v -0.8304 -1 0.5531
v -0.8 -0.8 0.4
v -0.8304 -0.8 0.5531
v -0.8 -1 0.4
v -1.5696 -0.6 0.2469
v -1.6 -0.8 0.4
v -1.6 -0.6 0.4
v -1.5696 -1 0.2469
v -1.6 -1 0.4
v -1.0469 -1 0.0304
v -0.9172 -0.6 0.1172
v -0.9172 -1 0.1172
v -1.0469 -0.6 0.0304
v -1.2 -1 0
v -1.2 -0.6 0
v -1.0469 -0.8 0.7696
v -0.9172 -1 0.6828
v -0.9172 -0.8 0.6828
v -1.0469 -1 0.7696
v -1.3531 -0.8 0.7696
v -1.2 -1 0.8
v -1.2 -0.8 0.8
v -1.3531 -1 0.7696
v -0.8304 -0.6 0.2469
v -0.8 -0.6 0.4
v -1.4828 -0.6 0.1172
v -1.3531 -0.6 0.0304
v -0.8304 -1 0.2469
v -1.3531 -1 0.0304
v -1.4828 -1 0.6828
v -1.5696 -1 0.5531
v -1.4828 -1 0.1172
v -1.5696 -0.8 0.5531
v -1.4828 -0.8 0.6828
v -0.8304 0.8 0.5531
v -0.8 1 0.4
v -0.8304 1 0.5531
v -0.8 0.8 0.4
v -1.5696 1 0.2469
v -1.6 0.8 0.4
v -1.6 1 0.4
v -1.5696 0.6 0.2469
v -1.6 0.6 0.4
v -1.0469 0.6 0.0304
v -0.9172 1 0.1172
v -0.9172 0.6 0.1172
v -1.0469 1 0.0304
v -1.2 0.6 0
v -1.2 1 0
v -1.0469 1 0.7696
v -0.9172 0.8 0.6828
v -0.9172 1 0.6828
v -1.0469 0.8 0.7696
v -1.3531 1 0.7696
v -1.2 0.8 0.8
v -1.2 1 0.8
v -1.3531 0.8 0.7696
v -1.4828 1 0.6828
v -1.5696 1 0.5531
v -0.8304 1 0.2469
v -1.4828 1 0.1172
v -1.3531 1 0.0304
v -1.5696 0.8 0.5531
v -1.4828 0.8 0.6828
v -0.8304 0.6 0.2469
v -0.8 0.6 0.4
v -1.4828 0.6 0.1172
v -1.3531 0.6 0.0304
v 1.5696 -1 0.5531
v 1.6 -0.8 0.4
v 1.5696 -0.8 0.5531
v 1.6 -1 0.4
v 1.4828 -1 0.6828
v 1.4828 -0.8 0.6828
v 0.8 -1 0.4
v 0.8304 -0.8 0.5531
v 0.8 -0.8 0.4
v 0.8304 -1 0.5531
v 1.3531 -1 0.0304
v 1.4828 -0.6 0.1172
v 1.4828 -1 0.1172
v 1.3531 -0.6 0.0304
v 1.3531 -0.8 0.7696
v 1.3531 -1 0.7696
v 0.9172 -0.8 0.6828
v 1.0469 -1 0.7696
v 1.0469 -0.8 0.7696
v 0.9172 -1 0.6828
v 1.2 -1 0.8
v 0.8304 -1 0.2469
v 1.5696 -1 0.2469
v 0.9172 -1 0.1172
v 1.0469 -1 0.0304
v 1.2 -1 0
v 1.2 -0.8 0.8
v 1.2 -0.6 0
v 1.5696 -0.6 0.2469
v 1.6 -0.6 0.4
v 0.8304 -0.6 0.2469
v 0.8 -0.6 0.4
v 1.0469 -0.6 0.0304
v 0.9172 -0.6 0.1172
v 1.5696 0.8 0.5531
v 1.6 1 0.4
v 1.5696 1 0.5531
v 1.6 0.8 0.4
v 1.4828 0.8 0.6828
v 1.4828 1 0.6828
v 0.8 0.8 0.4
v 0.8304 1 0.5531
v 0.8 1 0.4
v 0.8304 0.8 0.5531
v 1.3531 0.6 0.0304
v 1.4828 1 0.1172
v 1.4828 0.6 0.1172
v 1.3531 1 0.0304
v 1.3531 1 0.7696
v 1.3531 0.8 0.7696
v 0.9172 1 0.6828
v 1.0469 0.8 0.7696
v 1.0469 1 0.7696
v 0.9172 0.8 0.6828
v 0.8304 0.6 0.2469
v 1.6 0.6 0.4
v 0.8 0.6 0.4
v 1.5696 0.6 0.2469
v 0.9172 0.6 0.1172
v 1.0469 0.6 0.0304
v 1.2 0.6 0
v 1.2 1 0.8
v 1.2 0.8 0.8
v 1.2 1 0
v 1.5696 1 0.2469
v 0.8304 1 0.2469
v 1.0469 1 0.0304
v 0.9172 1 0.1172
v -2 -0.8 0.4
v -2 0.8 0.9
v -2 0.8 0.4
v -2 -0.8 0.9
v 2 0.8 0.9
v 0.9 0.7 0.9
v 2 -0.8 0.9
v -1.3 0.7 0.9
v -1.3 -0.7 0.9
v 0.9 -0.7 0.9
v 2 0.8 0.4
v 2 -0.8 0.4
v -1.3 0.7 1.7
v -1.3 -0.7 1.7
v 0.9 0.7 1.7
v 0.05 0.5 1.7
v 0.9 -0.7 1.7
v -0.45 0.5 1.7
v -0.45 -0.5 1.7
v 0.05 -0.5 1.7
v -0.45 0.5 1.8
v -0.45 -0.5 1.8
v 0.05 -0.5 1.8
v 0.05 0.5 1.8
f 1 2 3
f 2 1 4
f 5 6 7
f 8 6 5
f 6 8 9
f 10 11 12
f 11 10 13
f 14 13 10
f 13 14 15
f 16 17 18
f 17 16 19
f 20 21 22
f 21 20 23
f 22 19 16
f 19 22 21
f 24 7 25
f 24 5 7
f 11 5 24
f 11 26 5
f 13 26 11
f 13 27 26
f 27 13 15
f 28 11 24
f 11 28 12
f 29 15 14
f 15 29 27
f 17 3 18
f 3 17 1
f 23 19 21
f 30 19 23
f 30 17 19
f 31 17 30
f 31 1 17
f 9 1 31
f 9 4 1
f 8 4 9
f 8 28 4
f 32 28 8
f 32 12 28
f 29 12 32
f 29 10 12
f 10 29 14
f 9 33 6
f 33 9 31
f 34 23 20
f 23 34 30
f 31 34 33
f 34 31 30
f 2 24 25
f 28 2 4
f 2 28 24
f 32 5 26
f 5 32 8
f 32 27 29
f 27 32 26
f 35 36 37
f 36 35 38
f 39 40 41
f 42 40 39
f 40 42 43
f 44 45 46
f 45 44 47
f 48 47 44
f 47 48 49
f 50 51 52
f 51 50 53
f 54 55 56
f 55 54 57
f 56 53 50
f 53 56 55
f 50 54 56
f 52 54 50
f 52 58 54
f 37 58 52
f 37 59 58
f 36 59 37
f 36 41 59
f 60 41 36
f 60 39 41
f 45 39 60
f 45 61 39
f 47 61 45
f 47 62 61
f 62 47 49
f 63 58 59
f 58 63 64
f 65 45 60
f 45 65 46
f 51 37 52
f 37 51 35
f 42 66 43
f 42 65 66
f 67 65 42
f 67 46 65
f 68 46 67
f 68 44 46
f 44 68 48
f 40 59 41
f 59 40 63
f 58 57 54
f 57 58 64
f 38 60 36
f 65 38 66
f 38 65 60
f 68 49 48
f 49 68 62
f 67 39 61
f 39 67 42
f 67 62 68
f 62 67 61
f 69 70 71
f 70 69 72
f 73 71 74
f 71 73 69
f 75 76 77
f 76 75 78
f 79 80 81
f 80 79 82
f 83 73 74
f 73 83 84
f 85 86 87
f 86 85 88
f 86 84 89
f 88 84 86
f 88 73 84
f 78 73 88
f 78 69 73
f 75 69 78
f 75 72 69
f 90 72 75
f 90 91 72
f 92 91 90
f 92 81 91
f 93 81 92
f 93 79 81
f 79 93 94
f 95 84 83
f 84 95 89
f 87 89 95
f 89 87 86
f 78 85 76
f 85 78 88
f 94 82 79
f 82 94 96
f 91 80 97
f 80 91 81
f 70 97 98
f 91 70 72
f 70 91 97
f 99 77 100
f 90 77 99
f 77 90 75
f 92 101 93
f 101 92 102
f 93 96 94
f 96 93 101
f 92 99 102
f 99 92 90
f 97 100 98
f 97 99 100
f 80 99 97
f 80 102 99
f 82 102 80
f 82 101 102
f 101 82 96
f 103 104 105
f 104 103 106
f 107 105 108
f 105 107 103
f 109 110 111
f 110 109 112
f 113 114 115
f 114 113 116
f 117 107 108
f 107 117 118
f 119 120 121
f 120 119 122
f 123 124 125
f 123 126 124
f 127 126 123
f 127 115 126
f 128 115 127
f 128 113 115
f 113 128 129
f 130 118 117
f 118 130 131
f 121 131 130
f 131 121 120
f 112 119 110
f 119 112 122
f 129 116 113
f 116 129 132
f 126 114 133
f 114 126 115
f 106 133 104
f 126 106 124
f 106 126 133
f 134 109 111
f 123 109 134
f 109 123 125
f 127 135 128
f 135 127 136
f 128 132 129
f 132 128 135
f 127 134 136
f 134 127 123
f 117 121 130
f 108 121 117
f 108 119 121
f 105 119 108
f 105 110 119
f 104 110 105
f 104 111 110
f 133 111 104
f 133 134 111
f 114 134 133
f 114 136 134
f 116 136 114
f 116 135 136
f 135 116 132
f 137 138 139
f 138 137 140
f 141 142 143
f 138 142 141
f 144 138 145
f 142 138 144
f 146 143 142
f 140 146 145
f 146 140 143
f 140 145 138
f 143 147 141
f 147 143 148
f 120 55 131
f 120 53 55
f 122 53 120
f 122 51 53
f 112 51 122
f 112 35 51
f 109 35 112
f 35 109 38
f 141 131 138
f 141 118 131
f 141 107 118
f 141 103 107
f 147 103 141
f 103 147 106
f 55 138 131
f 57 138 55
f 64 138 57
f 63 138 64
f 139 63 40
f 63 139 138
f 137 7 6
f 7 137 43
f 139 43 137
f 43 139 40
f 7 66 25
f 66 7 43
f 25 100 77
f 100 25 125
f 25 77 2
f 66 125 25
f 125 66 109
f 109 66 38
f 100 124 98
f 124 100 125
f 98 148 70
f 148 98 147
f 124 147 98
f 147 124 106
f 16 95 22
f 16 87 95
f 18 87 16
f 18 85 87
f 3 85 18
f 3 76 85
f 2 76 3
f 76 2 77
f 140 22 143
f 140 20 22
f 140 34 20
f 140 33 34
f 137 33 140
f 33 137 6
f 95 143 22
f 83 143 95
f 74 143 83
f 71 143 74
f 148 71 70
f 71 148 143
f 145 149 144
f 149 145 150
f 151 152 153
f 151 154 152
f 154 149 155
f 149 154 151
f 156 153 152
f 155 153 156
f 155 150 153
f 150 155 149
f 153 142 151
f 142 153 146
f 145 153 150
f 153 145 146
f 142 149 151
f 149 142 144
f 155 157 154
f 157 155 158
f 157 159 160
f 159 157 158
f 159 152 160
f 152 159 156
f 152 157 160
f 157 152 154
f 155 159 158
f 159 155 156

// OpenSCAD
$fn = 16;

module follow_me_car() {
    color("darkgray") {
        for (x = [-1.2, 1.2]) {
            for (y = [-0.8, 0.8]) {
                translate([x, y, 0.4]) 
                    rotate([90, 0, 0]) 
                    cylinder(h=0.4, r=0.4, center=true);
            }
        }
    }

    // body
    color("yellow") {
        translate([0, 0, 0.65]) 
            cube([4, 1.6, 0.5], center=true);
            
        // upper cabin
        translate([-0.2, 0, 1.3]) 
            cube([2.2, 1.4, 0.8], center=true);
    }

    // light bar
    color("red") {
        translate([-0.2, 0, 1.75]) 
            cube([0.5, 1.0, 0.1], center=true);
    }
}

follow_me_car();
